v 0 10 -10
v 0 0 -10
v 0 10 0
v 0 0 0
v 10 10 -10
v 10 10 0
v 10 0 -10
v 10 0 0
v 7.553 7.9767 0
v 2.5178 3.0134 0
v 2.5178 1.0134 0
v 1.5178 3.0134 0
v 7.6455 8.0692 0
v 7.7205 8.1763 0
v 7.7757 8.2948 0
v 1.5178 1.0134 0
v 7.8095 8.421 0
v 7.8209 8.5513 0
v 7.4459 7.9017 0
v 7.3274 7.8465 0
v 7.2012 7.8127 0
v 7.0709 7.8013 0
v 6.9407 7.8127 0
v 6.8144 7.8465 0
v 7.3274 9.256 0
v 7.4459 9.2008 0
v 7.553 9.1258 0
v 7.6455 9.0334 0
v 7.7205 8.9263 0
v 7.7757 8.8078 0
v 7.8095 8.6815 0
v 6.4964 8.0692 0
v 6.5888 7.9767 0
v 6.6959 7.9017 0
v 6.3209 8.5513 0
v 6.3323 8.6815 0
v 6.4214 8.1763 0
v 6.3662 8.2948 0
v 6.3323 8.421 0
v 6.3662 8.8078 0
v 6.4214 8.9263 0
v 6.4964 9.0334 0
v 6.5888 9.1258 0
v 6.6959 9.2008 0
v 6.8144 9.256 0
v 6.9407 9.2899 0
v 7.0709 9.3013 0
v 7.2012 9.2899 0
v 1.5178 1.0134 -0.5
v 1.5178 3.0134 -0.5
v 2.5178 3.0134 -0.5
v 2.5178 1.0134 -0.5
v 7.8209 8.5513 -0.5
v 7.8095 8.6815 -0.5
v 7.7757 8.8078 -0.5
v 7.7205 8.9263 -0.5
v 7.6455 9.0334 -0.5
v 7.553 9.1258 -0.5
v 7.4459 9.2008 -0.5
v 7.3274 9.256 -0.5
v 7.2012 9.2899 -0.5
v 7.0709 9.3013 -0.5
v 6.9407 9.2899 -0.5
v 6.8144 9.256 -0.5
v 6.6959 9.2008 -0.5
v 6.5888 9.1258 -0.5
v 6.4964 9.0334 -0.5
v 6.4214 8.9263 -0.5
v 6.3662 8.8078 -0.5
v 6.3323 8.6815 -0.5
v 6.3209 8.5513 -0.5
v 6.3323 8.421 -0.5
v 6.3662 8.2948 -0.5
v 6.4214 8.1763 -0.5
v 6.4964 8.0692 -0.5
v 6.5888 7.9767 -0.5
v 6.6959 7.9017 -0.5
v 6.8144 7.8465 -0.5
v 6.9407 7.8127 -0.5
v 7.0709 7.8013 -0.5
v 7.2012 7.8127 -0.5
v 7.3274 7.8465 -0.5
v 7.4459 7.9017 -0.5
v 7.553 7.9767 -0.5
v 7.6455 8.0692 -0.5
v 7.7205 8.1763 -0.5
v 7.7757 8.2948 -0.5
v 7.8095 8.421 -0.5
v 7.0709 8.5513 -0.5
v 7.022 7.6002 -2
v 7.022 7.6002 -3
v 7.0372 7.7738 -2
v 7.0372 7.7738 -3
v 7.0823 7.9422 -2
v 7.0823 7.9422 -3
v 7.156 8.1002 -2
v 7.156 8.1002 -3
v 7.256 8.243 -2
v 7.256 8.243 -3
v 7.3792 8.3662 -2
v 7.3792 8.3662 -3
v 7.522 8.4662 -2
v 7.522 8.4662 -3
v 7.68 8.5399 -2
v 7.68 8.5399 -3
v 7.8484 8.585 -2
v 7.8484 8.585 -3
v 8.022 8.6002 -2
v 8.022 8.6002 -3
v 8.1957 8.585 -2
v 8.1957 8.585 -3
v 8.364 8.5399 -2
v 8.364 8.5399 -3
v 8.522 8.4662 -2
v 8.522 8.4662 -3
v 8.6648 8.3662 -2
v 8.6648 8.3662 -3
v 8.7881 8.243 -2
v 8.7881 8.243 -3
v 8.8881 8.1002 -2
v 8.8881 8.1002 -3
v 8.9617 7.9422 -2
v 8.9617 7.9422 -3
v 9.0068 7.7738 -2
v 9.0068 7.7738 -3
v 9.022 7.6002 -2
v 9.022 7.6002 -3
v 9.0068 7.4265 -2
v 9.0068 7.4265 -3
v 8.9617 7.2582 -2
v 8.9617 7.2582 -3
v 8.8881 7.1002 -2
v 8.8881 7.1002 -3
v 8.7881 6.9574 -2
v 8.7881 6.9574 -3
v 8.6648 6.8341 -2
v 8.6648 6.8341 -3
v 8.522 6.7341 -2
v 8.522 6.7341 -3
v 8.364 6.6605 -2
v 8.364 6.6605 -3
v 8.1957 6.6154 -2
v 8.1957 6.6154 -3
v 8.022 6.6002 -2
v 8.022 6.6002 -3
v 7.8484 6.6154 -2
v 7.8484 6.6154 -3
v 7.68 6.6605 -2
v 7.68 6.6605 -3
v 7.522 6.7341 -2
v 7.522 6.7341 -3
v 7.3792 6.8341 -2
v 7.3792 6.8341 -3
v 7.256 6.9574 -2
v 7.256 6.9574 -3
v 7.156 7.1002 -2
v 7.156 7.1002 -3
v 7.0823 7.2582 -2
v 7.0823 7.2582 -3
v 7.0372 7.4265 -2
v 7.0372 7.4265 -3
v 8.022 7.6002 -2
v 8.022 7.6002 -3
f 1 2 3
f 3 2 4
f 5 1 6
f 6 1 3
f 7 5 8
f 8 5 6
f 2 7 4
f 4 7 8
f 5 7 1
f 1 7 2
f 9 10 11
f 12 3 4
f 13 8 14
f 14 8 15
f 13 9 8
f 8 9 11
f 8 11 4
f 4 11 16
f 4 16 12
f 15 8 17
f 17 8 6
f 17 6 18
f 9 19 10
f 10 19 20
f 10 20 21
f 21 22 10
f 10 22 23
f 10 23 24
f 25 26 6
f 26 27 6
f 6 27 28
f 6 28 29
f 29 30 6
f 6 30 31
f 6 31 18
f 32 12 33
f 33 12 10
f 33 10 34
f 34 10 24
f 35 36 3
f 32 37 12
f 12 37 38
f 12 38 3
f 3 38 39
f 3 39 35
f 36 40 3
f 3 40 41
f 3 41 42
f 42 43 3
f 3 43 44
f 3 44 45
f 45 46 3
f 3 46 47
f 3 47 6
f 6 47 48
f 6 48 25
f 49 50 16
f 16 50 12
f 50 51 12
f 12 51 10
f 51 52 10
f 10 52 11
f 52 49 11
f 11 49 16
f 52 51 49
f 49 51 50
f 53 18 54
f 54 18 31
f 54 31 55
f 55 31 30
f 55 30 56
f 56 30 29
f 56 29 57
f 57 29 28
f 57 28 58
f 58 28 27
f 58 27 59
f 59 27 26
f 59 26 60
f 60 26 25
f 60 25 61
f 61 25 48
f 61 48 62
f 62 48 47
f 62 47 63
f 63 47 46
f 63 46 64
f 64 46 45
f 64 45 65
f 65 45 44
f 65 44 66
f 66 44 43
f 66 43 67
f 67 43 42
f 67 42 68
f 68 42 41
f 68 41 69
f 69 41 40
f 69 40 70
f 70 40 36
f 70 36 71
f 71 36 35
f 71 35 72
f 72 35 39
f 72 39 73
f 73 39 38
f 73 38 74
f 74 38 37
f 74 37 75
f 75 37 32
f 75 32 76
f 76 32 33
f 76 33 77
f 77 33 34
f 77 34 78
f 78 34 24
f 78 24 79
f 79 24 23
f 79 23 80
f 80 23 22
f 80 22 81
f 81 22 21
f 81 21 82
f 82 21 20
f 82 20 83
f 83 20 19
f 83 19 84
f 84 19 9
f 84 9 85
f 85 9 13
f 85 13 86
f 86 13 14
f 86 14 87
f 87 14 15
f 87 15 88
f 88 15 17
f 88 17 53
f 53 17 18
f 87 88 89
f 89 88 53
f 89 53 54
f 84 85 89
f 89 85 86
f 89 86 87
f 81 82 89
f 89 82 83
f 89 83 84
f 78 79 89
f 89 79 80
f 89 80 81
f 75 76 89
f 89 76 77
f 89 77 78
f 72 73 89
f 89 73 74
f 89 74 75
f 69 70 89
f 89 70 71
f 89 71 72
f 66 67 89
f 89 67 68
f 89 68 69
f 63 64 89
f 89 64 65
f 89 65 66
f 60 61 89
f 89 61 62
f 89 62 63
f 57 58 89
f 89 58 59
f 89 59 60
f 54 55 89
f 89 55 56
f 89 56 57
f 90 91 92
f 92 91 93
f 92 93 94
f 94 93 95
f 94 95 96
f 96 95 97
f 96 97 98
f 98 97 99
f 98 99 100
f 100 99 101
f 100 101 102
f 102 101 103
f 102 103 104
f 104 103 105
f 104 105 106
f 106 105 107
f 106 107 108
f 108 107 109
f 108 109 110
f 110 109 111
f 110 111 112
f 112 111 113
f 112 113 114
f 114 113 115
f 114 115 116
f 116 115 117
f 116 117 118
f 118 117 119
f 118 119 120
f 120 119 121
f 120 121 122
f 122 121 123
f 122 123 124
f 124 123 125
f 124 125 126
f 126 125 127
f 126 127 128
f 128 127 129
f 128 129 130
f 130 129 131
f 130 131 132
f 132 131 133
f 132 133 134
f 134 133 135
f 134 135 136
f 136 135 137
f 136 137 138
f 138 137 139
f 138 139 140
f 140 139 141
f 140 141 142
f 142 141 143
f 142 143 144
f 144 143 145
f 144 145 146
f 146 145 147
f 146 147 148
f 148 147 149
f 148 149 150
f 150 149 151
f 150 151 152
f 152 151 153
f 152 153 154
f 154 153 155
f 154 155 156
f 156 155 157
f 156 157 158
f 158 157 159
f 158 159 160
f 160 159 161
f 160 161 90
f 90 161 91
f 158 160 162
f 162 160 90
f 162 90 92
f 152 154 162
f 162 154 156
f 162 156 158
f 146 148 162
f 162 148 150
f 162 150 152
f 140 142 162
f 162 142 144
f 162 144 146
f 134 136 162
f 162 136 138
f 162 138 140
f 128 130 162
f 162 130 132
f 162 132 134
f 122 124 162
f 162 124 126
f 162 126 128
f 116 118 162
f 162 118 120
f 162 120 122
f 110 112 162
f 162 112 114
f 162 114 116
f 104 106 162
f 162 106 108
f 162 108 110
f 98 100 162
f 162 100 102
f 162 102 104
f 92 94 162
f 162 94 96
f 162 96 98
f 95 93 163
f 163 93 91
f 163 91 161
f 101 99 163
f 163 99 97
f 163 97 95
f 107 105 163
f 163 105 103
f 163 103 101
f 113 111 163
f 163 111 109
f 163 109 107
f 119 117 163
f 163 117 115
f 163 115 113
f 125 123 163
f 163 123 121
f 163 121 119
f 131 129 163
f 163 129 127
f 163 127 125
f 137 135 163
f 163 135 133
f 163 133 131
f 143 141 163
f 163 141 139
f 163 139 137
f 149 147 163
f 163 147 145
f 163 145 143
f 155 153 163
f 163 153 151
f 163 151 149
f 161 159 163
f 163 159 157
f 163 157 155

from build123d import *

# Parameters (mm, degrees)
SKETCH1_W           = 10
SKETCH1_H           = 10
BOSS_EXTRUDE1_DEPTH = 10
SKETCH3_R           = 1
CUT_EXTRUDE1_DEPTH  = 1
SKETCH4_W           = 1
SKETCH4_H           = 2
CUT_EXTRUDE2_DEPTH  = 0.5
SKETCH5_R           = 0.75
CUT_EXTRUDE3_DEPTH  = 0.5


with BuildPart() as part:
    # Sketch1 → Boss-Extrude1 (new body)
    with BuildSketch(Plane.XY):
        with Locations((5, 5)):
            Rectangle(SKETCH1_W, SKETCH1_H)
    extrude(amount=-BOSS_EXTRUDE1_DEPTH)

    # Sketch3 → Cut-Extrude1 (cut)
    with BuildSketch(Plane(origin=(0, 0, -3), x_dir=(-1, 0, 0), z_dir=(0, 0, -1))):
        with Locations((-8.022028726, 7.600171924)):
            Circle(SKETCH3_R)
    extrude(amount=-CUT_EXTRUDE1_DEPTH, mode=Mode.SUBTRACT)

    # Sketch4 → Cut-Extrude2 (cut)
    with BuildSketch(Plane.XY):
        with Locations((2.017763854, 2.01343797)):
            Rectangle(SKETCH4_W, SKETCH4_H)
    extrude(amount=-CUT_EXTRUDE2_DEPTH, mode=Mode.SUBTRACT)

    # Sketch5 → Cut-Extrude3 (cut)
    with BuildSketch(Plane.XY):
        with Locations((7.070933391, 8.551267259)):
            Circle(SKETCH5_R)
    extrude(amount=-CUT_EXTRUDE3_DEPTH, mode=Mode.SUBTRACT)


solid = part.part
